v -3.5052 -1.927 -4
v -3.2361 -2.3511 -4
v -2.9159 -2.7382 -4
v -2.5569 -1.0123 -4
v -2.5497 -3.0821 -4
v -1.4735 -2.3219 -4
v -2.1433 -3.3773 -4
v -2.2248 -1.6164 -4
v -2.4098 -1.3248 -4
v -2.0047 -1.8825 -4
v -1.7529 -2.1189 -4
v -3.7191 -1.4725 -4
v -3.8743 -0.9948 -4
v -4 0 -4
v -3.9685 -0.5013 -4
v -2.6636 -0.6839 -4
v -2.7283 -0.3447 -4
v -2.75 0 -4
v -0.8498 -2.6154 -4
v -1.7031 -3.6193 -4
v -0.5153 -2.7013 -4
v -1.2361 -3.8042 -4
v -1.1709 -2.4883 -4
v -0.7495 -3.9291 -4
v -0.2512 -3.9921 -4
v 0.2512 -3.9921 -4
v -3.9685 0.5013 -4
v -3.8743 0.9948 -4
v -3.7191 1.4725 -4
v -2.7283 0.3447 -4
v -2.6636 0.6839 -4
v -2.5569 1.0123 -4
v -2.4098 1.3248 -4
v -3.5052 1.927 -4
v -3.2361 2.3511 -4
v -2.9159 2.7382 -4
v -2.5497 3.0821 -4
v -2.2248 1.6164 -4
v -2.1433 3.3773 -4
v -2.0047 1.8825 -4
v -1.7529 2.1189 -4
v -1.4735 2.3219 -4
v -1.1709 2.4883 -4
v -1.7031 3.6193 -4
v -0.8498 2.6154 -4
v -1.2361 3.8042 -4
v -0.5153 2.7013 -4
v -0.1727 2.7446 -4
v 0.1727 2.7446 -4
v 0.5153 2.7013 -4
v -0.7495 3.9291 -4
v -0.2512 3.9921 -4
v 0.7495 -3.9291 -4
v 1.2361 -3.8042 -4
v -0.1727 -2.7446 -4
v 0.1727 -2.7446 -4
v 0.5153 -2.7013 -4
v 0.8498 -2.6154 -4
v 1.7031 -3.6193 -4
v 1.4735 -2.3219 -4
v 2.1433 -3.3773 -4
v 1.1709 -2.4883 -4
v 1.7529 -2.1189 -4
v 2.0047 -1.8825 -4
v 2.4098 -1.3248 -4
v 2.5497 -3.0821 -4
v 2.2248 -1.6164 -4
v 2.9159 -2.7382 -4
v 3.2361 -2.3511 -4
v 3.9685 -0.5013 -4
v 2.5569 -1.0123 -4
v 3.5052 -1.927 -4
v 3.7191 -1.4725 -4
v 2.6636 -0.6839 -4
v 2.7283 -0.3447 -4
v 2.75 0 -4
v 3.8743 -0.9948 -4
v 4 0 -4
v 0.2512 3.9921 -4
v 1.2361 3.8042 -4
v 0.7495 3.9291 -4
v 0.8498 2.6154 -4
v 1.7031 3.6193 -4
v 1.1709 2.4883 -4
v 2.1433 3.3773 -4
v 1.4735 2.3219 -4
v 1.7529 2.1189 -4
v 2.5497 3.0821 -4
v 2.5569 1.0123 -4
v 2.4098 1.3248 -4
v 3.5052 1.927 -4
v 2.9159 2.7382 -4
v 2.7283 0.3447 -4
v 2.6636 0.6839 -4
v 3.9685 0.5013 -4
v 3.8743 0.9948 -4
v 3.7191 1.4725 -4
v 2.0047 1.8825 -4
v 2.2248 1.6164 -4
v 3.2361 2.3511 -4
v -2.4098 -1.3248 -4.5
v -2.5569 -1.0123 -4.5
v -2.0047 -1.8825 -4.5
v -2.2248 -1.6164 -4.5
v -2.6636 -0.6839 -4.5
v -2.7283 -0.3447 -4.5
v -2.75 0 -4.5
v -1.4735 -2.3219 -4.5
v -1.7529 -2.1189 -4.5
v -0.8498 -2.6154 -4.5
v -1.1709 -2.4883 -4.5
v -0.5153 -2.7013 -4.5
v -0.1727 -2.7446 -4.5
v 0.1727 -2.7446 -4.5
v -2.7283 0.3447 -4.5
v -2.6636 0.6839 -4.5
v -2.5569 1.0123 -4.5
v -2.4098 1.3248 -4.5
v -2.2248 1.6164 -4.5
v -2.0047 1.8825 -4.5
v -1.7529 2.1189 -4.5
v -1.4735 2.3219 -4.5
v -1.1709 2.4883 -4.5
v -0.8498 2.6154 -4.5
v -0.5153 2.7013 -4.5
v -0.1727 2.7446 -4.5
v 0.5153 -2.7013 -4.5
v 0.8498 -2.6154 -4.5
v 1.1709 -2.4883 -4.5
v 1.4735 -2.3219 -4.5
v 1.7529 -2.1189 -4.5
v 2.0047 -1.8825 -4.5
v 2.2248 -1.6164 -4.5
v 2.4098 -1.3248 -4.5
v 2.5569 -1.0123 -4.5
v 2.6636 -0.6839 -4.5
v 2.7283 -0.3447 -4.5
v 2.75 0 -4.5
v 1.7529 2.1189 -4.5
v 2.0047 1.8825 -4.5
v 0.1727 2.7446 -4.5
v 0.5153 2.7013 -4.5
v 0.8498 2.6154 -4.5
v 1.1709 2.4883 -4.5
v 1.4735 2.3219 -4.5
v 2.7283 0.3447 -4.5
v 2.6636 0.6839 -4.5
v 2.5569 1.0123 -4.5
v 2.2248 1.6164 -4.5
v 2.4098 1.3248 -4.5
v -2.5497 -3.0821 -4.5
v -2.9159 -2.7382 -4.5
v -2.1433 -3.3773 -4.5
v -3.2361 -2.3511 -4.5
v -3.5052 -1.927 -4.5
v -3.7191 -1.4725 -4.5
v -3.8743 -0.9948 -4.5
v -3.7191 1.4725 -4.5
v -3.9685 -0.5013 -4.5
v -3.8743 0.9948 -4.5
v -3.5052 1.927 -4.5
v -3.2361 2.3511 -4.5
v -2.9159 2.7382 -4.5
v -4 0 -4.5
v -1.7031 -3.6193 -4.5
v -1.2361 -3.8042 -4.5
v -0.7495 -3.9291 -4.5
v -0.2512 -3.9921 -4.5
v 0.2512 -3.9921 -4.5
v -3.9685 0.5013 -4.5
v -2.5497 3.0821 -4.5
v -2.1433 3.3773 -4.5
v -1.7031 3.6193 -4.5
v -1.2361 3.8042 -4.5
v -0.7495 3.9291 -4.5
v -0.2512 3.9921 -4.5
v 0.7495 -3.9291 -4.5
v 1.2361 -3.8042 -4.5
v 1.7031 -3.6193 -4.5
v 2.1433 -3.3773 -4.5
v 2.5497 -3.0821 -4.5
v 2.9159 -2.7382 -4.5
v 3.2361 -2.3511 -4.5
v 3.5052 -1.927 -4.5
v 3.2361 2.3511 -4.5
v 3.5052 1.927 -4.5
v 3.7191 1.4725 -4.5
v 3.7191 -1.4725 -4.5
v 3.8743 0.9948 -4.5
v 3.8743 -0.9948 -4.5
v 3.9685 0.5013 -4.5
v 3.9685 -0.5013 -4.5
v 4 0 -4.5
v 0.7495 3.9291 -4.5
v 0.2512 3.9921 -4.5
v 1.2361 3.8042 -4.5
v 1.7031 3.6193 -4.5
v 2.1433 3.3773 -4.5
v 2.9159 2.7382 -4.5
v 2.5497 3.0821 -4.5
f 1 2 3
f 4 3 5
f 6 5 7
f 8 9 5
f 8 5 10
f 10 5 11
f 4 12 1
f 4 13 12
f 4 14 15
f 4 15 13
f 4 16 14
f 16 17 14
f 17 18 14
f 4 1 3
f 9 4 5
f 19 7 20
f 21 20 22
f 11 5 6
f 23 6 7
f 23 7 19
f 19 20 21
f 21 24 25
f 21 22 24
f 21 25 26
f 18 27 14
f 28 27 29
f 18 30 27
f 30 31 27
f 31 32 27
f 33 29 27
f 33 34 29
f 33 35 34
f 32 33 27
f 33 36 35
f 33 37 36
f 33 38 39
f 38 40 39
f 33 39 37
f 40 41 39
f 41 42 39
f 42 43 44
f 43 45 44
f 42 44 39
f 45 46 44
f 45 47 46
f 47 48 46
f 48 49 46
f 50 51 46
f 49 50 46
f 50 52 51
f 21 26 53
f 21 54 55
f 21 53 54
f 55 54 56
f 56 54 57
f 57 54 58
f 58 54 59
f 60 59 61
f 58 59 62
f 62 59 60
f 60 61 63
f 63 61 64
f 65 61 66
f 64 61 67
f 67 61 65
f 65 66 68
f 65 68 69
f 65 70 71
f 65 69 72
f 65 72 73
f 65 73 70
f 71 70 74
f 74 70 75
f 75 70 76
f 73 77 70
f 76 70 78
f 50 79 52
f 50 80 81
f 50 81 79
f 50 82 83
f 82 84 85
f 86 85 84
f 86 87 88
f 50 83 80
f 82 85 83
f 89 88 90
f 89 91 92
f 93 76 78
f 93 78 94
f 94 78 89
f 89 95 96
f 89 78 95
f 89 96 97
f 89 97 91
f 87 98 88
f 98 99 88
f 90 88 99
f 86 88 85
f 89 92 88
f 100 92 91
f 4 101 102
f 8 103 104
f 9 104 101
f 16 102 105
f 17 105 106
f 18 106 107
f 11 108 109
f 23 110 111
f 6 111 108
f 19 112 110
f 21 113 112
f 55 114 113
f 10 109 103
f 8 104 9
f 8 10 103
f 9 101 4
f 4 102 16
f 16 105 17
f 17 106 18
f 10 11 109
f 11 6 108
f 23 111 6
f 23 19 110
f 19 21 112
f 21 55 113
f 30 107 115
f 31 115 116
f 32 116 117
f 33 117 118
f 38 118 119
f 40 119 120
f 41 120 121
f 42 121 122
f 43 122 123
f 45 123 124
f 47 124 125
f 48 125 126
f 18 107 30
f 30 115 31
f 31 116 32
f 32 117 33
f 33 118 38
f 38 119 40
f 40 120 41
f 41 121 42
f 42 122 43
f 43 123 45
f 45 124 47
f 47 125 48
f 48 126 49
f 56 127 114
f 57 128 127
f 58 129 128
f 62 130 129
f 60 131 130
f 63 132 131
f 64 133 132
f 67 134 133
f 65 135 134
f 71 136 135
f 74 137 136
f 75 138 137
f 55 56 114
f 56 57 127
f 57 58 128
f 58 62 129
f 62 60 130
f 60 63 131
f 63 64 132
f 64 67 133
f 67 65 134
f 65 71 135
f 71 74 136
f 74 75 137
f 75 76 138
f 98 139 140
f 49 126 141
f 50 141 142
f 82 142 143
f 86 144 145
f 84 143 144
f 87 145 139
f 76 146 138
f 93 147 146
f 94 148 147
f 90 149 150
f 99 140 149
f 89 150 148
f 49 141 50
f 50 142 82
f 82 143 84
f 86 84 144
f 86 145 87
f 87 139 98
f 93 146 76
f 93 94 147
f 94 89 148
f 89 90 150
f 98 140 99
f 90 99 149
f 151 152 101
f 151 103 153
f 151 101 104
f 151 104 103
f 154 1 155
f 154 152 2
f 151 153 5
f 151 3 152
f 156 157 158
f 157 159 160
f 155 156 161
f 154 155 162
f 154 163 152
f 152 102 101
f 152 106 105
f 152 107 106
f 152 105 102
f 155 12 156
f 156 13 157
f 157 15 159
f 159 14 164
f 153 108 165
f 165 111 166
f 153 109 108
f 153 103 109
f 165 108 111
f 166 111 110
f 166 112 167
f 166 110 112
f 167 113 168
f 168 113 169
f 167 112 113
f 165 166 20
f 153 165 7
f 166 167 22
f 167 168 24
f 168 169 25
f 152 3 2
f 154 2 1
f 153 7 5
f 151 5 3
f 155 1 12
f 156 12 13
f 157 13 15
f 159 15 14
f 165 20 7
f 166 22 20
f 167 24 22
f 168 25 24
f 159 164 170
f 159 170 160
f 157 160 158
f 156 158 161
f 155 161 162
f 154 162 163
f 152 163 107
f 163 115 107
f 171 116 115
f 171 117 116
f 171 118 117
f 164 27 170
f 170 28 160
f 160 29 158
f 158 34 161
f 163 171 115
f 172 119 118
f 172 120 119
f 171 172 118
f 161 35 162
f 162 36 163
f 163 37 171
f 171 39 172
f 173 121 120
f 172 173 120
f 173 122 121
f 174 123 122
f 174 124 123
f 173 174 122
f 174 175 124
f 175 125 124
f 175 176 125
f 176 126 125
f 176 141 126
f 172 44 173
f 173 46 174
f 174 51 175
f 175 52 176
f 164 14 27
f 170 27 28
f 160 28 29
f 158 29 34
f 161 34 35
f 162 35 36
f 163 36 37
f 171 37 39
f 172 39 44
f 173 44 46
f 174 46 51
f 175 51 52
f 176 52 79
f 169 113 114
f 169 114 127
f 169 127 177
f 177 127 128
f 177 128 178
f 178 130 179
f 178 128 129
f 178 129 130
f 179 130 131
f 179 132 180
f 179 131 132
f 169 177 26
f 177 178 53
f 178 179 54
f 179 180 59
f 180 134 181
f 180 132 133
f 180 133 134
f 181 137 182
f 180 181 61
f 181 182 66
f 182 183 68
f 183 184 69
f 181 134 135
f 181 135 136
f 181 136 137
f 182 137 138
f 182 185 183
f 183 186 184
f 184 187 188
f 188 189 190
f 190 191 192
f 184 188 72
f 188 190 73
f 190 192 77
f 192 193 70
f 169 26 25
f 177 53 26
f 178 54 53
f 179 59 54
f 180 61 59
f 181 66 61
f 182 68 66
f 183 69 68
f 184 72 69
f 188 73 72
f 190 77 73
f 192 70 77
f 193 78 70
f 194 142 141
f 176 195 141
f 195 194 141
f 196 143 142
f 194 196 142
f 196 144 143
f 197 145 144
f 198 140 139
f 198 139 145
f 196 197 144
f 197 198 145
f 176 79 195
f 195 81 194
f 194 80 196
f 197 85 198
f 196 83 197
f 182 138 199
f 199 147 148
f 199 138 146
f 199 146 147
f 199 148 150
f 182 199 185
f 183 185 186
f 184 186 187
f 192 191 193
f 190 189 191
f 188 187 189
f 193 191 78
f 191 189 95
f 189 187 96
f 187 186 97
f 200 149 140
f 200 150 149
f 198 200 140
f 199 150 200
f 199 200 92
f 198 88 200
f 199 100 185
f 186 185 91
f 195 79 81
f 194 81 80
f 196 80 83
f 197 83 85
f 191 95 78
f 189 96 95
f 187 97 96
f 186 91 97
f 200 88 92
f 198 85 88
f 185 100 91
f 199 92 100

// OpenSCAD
$fn = 50;

difference() {
	union() {
		translate(v = [0, 0, -4.5]) {
			cylinder(h = 7.5, r = 4.0);
		}
	}
	union() {
		translate(v = [0, 0, 0]) {
			rotate(a = [0, 0, 0]) {
				difference() {
					union() {
						translate(v = [0, 0, -4]) {
							linear_extrude(height = 4) {
								polygon(points = [[4.8468, 0.0], [2.4234000000000004, 4.197451927062417], [-2.423399999999999, 4.197451927062417], [-4.8468, 5.935618106107392e-16], [-2.423400000000002, -4.197451927062416], [2.423399999999997, -4.197451927062419]]);
							}
						}
					}
					union();
				}
			}
		}
		#cylinder(h = 3, r = 6.25);
		#translate(v = [0, 0, -100.0]) {
			cylinder(h = 200, r = 2.75);
		}
	}
}
